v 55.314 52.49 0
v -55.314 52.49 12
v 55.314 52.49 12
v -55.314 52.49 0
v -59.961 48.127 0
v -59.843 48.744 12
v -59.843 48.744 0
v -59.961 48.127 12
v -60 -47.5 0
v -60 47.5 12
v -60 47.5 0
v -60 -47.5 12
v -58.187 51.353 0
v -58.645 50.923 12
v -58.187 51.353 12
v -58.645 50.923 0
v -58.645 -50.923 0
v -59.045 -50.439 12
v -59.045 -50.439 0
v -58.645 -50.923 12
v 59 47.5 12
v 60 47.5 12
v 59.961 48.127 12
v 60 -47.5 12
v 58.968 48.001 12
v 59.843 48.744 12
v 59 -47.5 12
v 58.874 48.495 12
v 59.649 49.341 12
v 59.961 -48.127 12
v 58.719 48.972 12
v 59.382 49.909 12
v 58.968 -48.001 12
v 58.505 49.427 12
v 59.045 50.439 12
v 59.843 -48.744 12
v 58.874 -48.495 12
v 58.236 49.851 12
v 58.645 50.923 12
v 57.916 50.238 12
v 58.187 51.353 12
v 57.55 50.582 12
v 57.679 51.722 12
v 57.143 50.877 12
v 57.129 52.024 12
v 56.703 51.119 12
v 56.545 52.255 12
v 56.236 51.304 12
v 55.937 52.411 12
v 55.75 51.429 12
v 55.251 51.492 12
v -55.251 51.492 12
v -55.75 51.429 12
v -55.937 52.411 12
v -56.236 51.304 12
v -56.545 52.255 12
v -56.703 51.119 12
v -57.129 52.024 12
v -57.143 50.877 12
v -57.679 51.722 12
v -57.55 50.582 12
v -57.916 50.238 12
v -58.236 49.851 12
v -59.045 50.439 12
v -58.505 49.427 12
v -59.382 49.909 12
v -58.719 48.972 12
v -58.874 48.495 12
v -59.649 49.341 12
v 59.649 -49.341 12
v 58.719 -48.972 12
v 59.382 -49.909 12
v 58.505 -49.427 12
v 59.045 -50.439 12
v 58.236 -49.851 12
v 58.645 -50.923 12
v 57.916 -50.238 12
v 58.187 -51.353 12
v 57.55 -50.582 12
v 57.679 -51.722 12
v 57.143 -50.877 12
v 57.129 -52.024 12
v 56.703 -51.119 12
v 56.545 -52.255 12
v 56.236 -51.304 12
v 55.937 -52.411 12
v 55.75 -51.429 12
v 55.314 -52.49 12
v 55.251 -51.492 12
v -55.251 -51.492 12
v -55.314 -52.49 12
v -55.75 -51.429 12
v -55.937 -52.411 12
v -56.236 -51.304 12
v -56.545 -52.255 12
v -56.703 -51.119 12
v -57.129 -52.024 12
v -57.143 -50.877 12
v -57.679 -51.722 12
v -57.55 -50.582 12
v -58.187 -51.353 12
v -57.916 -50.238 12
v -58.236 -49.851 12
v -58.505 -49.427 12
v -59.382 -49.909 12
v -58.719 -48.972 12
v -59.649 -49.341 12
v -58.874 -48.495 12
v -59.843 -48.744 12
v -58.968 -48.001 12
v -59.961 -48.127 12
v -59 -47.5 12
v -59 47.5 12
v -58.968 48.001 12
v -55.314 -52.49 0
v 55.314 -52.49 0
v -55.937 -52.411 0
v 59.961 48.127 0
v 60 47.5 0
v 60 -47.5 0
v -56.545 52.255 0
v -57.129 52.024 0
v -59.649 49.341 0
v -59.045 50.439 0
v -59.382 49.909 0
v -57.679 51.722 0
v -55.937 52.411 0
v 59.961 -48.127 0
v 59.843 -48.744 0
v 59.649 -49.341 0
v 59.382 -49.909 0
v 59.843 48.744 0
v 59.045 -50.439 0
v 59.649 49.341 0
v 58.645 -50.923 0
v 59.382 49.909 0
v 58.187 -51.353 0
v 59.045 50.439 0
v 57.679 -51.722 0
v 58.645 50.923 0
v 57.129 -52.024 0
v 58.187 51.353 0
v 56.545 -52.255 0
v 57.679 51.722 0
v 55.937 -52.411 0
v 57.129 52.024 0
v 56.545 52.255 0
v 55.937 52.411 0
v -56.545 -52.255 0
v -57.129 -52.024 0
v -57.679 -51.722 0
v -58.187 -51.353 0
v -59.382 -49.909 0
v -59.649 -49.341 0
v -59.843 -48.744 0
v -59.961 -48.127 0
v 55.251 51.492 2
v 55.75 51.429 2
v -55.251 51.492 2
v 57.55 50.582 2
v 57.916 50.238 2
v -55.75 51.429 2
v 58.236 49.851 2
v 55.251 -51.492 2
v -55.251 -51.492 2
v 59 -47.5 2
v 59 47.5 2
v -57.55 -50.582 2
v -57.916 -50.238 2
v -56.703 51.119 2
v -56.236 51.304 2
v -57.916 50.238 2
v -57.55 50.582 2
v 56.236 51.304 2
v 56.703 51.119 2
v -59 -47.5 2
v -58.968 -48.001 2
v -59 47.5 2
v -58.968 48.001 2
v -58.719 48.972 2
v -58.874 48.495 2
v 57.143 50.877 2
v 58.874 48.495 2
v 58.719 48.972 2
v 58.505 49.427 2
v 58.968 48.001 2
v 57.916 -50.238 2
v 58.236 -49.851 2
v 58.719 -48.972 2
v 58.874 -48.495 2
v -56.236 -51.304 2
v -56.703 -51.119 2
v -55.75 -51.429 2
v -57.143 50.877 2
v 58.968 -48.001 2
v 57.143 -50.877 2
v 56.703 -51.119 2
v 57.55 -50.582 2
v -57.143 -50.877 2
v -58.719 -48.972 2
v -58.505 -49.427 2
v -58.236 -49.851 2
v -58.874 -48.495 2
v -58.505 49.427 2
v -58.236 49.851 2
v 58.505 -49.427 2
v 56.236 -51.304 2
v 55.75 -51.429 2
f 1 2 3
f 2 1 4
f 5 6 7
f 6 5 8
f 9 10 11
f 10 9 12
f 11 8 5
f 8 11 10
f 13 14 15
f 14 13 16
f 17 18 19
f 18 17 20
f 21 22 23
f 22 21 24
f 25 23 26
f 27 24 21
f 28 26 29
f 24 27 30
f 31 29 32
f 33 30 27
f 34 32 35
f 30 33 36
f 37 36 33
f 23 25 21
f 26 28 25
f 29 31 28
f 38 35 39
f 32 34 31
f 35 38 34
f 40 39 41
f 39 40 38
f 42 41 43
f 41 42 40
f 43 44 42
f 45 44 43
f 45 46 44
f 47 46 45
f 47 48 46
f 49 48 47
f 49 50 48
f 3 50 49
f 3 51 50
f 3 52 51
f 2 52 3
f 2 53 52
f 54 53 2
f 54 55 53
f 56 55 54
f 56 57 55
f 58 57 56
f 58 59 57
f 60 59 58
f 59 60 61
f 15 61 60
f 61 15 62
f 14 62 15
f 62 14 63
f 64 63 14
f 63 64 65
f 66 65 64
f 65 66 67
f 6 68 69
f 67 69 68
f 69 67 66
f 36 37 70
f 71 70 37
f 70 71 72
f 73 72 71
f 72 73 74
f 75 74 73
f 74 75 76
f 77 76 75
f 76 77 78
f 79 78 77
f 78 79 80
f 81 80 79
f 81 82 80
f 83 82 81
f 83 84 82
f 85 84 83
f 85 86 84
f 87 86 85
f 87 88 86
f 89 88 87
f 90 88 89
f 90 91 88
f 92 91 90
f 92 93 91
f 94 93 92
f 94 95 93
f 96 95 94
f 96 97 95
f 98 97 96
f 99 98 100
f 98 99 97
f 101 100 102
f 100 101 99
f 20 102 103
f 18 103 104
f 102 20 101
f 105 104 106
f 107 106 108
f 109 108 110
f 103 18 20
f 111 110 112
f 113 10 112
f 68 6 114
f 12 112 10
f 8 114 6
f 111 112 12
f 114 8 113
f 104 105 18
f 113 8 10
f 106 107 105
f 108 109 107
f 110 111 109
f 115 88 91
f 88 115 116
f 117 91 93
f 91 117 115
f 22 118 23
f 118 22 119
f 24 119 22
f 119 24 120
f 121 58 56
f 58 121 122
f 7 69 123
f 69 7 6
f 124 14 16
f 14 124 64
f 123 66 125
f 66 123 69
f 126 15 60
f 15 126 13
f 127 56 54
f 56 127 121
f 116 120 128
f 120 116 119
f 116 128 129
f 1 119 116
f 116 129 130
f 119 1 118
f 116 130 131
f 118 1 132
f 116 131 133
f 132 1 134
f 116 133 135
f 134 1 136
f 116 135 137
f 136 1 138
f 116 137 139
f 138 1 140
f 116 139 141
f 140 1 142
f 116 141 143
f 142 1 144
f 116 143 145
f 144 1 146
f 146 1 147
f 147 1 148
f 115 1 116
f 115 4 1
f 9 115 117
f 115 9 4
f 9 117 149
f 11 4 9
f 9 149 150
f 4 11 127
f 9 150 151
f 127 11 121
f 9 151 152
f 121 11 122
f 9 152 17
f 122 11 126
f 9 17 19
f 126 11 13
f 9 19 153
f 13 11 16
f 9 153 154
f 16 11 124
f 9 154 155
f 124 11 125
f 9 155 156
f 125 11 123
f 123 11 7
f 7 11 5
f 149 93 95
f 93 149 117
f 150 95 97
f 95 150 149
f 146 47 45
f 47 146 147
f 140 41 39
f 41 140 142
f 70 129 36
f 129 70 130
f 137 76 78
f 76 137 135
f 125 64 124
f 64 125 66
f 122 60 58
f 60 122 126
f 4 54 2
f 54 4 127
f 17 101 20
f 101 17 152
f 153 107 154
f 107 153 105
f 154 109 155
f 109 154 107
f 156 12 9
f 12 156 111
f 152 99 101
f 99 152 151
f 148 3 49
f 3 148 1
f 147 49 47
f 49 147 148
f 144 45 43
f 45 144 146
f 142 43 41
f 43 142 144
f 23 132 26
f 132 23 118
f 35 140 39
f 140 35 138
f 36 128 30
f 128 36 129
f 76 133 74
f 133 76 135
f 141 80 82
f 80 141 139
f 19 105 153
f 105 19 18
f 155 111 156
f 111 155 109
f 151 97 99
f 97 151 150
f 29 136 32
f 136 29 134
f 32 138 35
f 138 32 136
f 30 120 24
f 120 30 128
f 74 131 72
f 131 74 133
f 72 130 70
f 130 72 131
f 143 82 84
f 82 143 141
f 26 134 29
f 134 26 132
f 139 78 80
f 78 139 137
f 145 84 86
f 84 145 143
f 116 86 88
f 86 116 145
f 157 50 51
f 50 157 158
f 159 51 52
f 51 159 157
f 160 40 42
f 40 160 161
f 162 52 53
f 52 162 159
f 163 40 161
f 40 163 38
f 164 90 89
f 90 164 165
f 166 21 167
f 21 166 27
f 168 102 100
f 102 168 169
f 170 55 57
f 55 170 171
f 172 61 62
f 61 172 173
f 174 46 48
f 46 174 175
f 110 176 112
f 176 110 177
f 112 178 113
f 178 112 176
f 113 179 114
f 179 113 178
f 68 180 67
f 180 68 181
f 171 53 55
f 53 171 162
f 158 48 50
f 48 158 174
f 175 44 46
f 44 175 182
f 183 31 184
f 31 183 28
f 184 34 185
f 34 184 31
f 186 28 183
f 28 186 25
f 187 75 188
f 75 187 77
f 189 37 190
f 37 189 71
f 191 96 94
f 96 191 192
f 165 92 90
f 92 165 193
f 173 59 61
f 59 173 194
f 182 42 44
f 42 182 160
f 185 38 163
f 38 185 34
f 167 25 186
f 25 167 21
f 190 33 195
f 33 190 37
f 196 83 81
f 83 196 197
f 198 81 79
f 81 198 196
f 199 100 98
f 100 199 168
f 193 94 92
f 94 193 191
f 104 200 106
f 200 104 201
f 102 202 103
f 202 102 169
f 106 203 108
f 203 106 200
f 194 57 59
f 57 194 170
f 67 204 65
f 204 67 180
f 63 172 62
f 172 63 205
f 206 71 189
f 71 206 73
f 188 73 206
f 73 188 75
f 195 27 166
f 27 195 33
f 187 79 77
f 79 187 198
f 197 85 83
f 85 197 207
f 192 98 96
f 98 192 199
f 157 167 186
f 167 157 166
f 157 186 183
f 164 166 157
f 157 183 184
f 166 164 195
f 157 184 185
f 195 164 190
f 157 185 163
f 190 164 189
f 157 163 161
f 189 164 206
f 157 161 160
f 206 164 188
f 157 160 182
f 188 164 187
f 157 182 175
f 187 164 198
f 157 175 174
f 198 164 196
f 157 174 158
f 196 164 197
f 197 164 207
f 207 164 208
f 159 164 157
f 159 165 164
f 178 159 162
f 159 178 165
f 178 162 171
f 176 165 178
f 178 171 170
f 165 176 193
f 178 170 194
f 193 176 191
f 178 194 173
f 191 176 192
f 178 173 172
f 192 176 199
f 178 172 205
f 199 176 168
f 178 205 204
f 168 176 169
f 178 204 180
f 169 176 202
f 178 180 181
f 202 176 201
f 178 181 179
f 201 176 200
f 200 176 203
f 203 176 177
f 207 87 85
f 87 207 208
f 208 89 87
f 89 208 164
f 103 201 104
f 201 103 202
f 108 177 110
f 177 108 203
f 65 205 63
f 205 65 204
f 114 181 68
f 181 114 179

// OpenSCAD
$fn = 50;


difference() {
	union() {
		hull() {
			translate(v = [-55.0000000000, 47.5000000000, 0]) {
				cylinder(h = 12, r = 5);
			}
			translate(v = [55.0000000000, 47.5000000000, 0]) {
				cylinder(h = 12, r = 5);
			}
			translate(v = [-55.0000000000, -47.5000000000, 0]) {
				cylinder(h = 12, r = 5);
			}
			translate(v = [55.0000000000, -47.5000000000, 0]) {
				cylinder(h = 12, r = 5);
			}
		}
	}
	union() {
		translate(v = [0, 0, 2]) {
			hull() {
				translate(v = [-55.0000000000, 47.5000000000, 0]) {
					cylinder(h = 10, r = 4);
				}
				translate(v = [55.0000000000, 47.5000000000, 0]) {
					cylinder(h = 10, r = 4);
				}
				translate(v = [-55.0000000000, -47.5000000000, 0]) {
					cylinder(h = 10, r = 4);
				}
				translate(v = [55.0000000000, -47.5000000000, 0]) {
					cylinder(h = 10, r = 4);
				}
			}
		}
	}
}
